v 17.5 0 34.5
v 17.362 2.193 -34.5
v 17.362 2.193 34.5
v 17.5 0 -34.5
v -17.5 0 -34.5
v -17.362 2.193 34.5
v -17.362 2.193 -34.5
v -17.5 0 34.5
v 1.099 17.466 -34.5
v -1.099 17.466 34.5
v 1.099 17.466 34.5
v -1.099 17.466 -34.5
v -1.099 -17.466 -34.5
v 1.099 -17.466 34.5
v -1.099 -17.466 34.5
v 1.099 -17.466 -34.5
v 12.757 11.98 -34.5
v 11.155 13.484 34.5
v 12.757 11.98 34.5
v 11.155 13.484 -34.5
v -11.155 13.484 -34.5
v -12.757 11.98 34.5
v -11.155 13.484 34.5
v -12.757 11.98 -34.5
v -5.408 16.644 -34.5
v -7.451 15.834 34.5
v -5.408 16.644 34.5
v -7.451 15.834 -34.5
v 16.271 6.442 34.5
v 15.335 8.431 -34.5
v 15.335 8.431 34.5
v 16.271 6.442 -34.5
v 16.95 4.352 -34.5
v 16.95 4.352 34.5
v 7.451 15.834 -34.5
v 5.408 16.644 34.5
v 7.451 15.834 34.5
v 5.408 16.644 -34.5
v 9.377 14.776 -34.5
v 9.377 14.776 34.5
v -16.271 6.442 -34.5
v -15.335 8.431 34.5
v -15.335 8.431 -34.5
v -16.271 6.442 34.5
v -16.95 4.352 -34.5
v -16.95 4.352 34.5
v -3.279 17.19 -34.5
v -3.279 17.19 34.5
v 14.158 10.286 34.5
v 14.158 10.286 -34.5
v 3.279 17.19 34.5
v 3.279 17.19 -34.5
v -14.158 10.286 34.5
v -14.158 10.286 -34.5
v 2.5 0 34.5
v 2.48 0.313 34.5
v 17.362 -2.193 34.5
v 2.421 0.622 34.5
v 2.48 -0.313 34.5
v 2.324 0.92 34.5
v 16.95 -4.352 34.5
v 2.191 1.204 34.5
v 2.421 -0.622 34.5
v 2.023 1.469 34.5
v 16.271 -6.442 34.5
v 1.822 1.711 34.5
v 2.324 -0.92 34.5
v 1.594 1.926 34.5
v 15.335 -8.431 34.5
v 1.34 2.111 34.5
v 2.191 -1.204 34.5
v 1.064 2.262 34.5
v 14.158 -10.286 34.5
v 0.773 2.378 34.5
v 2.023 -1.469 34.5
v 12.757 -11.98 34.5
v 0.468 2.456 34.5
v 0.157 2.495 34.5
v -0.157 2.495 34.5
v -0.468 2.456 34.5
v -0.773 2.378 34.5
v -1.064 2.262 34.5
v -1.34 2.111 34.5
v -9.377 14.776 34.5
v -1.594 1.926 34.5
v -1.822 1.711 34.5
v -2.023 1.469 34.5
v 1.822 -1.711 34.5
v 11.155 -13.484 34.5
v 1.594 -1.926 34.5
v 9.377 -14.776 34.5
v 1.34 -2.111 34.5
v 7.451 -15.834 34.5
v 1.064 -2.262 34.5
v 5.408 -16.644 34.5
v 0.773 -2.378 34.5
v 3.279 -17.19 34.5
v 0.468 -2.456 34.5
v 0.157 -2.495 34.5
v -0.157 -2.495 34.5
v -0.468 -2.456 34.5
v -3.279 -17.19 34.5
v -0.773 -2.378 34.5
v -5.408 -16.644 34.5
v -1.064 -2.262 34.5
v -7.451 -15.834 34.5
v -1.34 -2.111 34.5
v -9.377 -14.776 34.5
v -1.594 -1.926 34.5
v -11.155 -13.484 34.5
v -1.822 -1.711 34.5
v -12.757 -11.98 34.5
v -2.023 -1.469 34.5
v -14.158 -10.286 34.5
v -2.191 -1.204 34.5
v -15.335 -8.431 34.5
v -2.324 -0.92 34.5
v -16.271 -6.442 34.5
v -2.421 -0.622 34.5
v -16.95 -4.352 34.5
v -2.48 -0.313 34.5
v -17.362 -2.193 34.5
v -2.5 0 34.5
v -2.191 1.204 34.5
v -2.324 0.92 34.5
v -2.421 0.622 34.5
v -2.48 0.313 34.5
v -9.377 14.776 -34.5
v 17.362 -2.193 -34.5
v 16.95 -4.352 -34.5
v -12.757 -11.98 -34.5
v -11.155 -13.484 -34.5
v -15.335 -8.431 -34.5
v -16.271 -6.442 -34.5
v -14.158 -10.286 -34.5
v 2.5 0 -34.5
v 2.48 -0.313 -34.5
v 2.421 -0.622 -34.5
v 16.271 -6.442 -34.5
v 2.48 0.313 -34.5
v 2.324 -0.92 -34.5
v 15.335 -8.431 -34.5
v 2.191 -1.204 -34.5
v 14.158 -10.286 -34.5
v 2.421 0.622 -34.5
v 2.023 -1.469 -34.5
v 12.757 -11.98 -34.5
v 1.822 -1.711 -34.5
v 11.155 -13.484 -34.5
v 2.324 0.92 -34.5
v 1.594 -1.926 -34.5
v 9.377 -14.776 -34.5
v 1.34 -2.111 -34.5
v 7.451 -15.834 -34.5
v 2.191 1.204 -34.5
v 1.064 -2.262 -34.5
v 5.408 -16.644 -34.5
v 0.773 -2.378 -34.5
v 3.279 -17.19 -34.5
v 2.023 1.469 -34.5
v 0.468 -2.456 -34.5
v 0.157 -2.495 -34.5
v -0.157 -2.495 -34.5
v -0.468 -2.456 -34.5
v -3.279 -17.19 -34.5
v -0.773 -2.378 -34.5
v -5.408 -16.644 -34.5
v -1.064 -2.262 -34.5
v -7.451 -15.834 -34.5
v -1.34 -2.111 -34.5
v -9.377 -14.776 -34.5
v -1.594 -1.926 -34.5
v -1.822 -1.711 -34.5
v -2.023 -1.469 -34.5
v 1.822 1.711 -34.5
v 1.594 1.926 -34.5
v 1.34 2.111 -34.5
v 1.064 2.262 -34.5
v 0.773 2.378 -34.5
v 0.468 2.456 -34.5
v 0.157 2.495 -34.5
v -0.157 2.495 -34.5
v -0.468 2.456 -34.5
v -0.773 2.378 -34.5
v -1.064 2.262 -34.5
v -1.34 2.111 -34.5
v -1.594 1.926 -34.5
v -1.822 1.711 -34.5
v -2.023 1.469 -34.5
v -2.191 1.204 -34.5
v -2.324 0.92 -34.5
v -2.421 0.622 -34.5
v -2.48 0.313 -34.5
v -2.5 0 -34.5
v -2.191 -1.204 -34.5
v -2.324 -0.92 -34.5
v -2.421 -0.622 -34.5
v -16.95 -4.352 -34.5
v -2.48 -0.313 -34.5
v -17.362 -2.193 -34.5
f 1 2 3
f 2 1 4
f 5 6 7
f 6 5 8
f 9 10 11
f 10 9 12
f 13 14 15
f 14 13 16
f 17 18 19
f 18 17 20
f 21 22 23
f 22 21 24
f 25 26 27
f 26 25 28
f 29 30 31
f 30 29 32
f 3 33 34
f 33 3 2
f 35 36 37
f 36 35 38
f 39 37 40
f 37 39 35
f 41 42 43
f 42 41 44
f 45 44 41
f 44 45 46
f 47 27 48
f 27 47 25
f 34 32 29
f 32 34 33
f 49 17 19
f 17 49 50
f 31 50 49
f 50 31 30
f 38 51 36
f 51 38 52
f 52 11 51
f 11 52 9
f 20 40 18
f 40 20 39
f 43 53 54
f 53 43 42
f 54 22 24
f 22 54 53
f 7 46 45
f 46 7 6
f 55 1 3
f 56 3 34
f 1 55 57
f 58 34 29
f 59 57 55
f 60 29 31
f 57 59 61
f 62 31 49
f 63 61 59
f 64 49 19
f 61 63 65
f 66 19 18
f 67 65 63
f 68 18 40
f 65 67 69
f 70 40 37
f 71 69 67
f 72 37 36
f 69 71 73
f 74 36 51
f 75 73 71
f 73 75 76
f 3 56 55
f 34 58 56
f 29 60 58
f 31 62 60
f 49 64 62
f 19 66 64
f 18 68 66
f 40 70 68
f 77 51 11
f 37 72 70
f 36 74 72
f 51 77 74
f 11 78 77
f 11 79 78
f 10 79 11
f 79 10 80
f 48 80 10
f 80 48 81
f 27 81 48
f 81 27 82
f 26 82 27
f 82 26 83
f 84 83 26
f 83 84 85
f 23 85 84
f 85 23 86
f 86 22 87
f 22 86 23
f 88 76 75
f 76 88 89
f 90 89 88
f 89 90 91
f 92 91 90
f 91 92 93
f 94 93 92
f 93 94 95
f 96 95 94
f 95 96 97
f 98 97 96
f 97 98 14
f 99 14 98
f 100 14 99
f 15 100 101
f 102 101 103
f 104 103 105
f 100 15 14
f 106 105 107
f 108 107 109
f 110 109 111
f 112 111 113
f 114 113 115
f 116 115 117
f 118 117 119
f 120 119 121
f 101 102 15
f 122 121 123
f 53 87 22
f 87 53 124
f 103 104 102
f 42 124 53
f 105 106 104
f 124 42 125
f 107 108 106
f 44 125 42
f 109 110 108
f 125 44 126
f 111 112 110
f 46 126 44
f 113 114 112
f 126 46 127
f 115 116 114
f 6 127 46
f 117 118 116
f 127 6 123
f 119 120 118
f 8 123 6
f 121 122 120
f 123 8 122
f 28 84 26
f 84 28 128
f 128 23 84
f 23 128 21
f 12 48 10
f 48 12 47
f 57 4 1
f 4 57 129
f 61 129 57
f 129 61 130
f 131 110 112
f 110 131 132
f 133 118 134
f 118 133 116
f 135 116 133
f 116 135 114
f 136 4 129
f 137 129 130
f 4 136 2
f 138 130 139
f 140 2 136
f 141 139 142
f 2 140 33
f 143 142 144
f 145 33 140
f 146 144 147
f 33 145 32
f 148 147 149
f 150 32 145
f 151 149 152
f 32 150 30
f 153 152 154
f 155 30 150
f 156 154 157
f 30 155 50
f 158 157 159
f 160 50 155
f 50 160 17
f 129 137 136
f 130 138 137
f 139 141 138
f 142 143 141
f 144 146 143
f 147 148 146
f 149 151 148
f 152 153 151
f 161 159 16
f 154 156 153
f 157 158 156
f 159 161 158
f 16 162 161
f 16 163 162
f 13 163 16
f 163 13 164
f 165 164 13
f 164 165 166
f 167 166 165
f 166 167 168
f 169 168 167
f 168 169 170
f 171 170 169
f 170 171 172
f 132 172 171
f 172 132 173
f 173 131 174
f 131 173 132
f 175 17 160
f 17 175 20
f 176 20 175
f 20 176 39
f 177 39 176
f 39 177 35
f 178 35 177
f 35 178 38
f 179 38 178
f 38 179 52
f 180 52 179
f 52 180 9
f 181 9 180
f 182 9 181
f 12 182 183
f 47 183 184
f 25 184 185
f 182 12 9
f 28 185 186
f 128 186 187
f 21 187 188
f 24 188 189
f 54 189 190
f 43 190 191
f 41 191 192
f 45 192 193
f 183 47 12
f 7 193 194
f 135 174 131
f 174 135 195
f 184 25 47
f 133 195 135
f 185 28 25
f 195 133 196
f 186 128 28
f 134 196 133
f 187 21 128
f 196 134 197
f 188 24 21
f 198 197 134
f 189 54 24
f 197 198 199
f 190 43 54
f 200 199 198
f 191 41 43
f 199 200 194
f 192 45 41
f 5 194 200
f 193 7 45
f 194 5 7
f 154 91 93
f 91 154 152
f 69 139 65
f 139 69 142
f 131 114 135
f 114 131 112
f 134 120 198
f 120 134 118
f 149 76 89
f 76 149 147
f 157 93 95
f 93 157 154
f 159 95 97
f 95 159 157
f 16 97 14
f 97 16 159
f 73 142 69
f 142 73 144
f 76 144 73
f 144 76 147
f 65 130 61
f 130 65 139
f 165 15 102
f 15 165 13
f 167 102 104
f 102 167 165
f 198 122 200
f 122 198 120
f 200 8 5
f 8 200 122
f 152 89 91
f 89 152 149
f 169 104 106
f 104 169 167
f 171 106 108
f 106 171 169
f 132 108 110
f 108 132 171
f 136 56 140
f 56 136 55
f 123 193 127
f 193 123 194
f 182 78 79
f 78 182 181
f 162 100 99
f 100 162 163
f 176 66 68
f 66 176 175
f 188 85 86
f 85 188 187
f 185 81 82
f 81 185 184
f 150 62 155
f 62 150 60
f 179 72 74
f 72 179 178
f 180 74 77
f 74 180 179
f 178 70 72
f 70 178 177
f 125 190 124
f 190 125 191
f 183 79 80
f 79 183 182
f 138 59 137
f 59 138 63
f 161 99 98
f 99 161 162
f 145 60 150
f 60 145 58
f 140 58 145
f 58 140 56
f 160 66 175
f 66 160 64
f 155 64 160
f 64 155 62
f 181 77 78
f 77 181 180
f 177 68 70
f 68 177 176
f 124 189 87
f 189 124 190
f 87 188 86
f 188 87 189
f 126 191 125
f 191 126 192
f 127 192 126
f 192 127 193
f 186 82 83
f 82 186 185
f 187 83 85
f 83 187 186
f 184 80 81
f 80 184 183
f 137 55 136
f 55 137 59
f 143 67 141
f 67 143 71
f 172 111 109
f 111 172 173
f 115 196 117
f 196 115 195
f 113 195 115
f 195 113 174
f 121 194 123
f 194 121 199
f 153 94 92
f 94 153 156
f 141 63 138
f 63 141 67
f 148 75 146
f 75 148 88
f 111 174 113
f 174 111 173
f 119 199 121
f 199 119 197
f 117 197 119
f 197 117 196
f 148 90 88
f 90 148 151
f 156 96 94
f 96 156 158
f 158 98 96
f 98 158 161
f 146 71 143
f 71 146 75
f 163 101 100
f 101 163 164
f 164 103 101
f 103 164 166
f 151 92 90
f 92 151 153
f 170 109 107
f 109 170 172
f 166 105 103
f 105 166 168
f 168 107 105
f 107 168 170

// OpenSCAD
$fn = 50;


difference() {
	union() {
		translate(v = [0, 0, -34.5000000000]) {
			cylinder(h = 69, r = 17.5000000000);
		}
	}
	union() {
		translate(v = [0, 0, -100.0000000000]) {
			cylinder(h = 200, r = 2.5000000000);
		}
	}
}
